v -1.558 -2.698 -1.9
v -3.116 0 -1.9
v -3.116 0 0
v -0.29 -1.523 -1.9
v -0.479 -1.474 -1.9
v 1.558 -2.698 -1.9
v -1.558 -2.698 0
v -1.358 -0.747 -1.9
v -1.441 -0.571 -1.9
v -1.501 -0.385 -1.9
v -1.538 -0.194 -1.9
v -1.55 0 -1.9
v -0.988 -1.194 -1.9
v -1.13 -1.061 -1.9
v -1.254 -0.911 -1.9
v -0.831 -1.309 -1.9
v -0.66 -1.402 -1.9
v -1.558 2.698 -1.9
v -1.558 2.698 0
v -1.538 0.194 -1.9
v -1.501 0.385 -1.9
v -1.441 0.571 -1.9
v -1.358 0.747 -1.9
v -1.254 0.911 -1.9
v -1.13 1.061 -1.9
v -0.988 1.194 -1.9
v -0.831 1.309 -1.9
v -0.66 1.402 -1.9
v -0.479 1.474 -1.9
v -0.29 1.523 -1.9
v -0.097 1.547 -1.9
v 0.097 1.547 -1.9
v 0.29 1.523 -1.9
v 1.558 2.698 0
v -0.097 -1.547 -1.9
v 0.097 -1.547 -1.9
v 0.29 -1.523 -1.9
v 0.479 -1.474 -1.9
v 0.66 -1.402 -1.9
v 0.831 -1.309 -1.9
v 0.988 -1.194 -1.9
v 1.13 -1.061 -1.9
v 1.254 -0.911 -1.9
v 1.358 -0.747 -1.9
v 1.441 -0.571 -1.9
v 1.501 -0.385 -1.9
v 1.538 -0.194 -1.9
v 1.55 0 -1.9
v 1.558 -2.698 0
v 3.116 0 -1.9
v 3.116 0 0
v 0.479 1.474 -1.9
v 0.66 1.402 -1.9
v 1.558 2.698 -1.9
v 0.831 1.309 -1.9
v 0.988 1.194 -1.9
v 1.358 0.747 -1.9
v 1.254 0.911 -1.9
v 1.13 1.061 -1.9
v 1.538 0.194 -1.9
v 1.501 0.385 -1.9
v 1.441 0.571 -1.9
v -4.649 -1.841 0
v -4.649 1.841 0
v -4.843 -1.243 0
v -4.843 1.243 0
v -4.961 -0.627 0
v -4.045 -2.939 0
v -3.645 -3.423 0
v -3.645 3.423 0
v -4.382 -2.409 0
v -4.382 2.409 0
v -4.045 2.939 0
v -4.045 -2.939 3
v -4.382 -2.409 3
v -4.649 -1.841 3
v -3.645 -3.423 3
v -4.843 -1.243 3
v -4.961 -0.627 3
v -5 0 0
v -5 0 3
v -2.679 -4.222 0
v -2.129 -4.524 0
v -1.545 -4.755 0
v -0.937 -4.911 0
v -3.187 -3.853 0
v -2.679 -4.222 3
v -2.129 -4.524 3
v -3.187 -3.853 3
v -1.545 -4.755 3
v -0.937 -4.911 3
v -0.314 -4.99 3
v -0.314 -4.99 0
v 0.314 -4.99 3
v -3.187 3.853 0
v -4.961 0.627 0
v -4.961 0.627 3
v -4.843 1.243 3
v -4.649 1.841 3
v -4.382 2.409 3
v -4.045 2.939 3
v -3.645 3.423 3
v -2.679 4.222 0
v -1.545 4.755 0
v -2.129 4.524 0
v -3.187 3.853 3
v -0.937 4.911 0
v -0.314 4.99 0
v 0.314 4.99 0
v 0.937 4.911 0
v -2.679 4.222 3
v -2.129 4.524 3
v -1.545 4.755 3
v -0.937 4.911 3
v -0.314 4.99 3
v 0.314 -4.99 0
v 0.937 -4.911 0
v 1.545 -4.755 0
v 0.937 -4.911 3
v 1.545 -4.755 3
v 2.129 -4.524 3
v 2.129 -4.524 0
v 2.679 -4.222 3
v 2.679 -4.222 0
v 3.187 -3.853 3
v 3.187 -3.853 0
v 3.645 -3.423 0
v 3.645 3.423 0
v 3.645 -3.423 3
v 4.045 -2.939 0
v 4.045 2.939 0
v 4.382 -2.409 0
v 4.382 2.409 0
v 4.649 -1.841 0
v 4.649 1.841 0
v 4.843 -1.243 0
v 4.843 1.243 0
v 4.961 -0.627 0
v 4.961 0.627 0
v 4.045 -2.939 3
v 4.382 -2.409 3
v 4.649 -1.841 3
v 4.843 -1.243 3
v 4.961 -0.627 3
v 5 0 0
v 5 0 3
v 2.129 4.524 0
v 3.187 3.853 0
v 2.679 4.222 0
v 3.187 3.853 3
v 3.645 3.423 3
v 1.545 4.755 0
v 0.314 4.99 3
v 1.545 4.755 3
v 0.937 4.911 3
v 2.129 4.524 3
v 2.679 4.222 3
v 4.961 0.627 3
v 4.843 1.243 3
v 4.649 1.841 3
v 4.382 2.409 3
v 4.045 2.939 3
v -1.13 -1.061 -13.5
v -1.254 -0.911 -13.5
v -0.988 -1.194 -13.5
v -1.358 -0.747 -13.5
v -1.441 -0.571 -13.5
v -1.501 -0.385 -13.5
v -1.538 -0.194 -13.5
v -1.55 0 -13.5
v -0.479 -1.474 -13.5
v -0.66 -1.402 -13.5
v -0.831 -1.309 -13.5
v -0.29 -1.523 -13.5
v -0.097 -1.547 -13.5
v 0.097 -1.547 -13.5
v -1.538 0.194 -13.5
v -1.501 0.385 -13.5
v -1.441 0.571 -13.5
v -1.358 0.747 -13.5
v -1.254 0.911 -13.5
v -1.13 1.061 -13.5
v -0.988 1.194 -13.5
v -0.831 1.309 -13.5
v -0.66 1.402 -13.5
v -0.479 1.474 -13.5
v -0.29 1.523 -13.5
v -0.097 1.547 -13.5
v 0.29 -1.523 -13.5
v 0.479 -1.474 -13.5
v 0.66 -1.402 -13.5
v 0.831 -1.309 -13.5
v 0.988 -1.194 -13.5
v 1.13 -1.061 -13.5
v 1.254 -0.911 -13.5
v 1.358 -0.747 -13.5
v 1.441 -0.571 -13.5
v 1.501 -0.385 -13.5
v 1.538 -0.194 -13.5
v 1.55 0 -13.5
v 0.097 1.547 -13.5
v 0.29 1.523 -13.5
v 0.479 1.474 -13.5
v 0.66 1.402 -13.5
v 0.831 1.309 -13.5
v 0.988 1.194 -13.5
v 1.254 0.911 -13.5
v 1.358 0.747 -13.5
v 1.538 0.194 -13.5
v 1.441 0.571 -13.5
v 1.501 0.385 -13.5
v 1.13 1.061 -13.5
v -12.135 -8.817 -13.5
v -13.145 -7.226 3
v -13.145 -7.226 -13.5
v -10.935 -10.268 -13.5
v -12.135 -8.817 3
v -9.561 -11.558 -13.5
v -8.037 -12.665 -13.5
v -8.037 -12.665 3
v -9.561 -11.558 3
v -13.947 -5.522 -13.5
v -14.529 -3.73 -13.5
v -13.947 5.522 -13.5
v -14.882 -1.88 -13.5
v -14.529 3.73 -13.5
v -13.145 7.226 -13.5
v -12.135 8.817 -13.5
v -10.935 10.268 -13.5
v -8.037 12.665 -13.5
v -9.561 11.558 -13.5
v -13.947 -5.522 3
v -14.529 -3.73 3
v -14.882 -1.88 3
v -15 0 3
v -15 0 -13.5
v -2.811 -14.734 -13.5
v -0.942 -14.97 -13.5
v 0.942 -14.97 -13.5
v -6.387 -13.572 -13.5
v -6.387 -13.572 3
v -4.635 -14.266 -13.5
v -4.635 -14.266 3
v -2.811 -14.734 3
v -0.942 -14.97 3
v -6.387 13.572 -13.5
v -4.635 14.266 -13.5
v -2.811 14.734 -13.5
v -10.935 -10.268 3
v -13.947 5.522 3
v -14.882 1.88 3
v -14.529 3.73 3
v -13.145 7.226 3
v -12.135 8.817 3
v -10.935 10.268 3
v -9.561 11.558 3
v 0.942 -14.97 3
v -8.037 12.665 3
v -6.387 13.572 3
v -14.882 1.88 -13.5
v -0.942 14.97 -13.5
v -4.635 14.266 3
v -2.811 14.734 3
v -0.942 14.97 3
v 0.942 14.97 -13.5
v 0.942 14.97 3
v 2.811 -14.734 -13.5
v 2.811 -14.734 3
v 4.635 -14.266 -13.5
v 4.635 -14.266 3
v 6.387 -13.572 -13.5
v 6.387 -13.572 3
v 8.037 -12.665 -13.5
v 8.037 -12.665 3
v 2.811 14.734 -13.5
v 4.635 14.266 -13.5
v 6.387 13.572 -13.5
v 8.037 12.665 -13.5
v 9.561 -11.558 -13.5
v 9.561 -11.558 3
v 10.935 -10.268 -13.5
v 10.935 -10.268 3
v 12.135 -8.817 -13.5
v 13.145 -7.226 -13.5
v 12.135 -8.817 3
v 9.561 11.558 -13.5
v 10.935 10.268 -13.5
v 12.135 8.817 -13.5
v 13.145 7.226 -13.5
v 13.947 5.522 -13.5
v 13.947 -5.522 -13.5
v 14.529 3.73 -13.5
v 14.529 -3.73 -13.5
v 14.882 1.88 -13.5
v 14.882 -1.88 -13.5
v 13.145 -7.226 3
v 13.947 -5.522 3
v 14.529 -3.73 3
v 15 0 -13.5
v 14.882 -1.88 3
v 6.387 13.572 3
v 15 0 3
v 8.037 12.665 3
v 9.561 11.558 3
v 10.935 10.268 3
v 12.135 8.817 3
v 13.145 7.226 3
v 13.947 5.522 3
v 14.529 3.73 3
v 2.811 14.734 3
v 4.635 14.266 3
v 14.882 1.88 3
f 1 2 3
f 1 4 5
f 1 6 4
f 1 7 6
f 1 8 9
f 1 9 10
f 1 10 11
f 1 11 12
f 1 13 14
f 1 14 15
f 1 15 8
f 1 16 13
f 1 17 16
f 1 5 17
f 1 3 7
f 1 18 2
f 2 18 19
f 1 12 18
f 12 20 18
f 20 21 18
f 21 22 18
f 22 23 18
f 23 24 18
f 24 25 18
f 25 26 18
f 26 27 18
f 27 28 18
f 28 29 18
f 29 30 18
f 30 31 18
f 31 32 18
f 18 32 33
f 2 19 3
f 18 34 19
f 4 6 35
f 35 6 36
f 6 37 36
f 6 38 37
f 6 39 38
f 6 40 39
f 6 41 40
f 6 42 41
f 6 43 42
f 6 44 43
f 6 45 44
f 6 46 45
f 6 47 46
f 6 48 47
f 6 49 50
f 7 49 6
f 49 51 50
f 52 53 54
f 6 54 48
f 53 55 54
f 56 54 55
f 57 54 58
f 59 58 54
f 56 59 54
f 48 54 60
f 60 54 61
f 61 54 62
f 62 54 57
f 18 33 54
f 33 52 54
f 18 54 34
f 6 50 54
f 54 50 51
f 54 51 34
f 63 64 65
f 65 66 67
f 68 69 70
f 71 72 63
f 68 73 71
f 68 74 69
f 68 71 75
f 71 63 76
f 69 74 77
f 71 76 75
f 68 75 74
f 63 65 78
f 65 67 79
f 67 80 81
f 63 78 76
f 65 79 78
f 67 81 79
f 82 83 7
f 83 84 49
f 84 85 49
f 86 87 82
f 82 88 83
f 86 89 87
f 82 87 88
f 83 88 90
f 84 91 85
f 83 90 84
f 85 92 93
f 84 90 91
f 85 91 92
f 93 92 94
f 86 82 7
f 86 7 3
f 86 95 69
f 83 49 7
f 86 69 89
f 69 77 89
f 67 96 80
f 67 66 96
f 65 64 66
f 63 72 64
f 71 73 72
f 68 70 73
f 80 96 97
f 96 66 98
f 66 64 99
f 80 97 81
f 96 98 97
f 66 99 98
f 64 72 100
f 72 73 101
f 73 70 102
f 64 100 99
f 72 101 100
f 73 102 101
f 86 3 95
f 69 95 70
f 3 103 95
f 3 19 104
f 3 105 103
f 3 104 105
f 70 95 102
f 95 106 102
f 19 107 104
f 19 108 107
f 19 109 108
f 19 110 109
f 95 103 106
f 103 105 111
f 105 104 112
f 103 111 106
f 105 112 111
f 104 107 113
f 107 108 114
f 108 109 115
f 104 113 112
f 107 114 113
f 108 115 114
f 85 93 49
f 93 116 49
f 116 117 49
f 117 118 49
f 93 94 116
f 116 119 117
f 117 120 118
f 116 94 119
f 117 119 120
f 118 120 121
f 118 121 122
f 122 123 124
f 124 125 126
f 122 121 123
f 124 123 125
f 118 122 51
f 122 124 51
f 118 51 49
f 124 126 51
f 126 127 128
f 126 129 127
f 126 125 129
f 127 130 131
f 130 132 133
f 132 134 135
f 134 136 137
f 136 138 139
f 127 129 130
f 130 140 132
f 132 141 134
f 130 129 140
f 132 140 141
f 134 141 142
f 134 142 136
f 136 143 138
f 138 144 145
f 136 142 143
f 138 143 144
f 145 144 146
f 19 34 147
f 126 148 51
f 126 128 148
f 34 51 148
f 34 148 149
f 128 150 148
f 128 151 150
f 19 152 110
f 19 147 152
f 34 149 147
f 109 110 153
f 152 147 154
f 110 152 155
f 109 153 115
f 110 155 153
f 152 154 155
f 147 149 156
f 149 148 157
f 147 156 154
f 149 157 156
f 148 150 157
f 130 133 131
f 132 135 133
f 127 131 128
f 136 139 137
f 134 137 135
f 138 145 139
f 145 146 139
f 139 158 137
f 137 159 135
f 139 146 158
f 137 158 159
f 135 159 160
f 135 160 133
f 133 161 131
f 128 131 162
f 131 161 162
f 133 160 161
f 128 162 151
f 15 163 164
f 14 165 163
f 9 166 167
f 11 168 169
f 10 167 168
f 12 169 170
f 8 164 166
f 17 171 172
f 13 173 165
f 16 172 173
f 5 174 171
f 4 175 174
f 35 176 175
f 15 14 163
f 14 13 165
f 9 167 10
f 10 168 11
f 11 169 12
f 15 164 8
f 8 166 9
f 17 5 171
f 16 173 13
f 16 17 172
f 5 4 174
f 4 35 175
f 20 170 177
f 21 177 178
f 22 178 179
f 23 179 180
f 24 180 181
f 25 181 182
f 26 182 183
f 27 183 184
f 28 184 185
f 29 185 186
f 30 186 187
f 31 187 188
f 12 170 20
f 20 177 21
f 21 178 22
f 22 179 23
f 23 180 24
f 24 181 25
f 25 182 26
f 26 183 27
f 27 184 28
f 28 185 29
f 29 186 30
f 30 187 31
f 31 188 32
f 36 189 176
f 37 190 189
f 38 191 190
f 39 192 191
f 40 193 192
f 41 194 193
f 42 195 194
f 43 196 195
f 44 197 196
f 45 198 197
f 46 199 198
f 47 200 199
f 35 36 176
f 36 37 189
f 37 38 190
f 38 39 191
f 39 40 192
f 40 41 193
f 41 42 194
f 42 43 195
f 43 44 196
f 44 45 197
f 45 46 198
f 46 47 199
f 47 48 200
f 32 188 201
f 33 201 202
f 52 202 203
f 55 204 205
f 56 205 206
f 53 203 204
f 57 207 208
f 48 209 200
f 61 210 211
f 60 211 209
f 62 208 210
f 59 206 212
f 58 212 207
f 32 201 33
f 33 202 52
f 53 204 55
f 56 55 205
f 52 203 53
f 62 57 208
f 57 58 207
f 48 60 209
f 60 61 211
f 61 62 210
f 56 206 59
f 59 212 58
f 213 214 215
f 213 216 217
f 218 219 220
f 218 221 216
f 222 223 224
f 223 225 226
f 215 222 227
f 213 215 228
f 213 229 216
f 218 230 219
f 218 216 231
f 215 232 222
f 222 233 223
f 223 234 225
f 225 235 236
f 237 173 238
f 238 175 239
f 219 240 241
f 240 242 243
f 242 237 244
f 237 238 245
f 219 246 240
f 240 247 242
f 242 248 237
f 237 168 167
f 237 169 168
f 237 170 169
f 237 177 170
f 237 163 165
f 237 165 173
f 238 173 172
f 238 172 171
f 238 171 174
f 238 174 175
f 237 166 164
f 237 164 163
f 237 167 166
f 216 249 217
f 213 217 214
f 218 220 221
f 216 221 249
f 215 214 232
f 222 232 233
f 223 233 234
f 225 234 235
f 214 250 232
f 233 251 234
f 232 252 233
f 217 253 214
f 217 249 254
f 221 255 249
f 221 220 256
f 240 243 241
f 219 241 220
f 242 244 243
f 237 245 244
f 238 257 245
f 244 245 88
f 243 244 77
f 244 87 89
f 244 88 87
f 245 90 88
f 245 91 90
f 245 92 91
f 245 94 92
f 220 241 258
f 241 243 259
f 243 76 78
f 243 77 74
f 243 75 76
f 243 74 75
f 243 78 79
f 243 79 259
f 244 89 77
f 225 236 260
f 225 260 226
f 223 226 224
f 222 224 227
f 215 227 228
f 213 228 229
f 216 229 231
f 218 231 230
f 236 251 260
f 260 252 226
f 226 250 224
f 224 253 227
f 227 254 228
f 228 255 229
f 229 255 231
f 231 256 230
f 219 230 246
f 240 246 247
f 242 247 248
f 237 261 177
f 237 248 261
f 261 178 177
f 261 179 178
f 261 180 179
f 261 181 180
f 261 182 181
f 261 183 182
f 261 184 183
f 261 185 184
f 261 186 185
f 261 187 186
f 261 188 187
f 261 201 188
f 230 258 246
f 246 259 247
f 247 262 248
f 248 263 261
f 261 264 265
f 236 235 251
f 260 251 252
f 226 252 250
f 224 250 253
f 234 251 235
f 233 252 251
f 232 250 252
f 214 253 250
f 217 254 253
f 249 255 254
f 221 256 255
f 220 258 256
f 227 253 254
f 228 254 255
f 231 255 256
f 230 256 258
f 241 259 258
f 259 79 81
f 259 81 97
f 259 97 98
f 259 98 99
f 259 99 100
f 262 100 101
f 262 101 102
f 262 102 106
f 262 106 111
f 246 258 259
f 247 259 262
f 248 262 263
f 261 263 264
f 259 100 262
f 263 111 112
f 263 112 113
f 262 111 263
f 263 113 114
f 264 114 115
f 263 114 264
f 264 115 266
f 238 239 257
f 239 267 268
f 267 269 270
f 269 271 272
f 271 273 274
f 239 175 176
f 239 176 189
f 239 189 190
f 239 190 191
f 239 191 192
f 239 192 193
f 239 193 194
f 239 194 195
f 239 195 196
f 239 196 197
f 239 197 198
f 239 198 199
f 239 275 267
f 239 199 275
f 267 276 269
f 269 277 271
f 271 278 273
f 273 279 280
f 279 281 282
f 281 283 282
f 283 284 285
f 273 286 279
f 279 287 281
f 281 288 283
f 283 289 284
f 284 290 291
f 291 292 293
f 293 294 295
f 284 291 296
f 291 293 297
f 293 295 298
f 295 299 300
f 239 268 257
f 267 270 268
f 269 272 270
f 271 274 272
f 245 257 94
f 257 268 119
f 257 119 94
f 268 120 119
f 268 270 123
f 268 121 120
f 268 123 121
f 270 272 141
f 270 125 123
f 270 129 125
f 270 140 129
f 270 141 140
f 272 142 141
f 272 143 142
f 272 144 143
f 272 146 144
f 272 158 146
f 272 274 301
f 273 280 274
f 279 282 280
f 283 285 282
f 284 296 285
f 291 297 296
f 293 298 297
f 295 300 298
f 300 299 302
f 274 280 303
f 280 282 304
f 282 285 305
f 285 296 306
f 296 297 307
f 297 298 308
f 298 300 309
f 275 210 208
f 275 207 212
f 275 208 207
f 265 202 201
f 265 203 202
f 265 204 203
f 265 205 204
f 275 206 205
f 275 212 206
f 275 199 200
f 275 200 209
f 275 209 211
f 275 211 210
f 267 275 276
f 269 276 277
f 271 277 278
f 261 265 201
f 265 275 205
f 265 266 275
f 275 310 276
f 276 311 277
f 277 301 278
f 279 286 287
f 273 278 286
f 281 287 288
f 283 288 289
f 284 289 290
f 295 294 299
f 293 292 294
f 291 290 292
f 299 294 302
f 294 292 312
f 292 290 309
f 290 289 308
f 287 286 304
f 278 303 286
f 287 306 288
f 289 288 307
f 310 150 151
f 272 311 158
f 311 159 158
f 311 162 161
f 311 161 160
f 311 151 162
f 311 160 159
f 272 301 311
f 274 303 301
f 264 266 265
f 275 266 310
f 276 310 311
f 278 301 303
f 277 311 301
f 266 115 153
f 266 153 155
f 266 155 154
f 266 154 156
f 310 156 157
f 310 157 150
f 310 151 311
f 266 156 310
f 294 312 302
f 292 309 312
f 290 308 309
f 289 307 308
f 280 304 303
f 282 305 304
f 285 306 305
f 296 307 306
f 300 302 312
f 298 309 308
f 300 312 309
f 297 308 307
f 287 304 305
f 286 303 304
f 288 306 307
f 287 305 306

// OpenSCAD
$fn = 50;

difference() {
	union() {
		translate(v = [0, 0, -13.5]) {
			cylinder(h = 16.5, r = 15.0);
		}
	}
	union() {
		translate(v = [0, 0, 0]) {
			rotate(a = [0, 0, 0]) {
				difference() {
					union() {
						translate(v = [0, 0, -1.9]) {
							linear_extrude(height = 1.9) {
								polygon(points = [[3.1158, 0.0], [1.5579000000000005, 2.698361953111554], [-1.5578999999999994, 2.6983619531115544], [-3.1158, 3.815754496783323e-16], [-1.5579000000000014, -2.6983619531115535], [1.557899999999998, -2.6983619531115552]]);
							}
						}
					}
					union();
				}
			}
		}
		#cylinder(h = 3, r = 5.0);
		#translate(v = [0, 0, -100.0]) {
			cylinder(h = 200, r = 1.55);
		}
	}
}
